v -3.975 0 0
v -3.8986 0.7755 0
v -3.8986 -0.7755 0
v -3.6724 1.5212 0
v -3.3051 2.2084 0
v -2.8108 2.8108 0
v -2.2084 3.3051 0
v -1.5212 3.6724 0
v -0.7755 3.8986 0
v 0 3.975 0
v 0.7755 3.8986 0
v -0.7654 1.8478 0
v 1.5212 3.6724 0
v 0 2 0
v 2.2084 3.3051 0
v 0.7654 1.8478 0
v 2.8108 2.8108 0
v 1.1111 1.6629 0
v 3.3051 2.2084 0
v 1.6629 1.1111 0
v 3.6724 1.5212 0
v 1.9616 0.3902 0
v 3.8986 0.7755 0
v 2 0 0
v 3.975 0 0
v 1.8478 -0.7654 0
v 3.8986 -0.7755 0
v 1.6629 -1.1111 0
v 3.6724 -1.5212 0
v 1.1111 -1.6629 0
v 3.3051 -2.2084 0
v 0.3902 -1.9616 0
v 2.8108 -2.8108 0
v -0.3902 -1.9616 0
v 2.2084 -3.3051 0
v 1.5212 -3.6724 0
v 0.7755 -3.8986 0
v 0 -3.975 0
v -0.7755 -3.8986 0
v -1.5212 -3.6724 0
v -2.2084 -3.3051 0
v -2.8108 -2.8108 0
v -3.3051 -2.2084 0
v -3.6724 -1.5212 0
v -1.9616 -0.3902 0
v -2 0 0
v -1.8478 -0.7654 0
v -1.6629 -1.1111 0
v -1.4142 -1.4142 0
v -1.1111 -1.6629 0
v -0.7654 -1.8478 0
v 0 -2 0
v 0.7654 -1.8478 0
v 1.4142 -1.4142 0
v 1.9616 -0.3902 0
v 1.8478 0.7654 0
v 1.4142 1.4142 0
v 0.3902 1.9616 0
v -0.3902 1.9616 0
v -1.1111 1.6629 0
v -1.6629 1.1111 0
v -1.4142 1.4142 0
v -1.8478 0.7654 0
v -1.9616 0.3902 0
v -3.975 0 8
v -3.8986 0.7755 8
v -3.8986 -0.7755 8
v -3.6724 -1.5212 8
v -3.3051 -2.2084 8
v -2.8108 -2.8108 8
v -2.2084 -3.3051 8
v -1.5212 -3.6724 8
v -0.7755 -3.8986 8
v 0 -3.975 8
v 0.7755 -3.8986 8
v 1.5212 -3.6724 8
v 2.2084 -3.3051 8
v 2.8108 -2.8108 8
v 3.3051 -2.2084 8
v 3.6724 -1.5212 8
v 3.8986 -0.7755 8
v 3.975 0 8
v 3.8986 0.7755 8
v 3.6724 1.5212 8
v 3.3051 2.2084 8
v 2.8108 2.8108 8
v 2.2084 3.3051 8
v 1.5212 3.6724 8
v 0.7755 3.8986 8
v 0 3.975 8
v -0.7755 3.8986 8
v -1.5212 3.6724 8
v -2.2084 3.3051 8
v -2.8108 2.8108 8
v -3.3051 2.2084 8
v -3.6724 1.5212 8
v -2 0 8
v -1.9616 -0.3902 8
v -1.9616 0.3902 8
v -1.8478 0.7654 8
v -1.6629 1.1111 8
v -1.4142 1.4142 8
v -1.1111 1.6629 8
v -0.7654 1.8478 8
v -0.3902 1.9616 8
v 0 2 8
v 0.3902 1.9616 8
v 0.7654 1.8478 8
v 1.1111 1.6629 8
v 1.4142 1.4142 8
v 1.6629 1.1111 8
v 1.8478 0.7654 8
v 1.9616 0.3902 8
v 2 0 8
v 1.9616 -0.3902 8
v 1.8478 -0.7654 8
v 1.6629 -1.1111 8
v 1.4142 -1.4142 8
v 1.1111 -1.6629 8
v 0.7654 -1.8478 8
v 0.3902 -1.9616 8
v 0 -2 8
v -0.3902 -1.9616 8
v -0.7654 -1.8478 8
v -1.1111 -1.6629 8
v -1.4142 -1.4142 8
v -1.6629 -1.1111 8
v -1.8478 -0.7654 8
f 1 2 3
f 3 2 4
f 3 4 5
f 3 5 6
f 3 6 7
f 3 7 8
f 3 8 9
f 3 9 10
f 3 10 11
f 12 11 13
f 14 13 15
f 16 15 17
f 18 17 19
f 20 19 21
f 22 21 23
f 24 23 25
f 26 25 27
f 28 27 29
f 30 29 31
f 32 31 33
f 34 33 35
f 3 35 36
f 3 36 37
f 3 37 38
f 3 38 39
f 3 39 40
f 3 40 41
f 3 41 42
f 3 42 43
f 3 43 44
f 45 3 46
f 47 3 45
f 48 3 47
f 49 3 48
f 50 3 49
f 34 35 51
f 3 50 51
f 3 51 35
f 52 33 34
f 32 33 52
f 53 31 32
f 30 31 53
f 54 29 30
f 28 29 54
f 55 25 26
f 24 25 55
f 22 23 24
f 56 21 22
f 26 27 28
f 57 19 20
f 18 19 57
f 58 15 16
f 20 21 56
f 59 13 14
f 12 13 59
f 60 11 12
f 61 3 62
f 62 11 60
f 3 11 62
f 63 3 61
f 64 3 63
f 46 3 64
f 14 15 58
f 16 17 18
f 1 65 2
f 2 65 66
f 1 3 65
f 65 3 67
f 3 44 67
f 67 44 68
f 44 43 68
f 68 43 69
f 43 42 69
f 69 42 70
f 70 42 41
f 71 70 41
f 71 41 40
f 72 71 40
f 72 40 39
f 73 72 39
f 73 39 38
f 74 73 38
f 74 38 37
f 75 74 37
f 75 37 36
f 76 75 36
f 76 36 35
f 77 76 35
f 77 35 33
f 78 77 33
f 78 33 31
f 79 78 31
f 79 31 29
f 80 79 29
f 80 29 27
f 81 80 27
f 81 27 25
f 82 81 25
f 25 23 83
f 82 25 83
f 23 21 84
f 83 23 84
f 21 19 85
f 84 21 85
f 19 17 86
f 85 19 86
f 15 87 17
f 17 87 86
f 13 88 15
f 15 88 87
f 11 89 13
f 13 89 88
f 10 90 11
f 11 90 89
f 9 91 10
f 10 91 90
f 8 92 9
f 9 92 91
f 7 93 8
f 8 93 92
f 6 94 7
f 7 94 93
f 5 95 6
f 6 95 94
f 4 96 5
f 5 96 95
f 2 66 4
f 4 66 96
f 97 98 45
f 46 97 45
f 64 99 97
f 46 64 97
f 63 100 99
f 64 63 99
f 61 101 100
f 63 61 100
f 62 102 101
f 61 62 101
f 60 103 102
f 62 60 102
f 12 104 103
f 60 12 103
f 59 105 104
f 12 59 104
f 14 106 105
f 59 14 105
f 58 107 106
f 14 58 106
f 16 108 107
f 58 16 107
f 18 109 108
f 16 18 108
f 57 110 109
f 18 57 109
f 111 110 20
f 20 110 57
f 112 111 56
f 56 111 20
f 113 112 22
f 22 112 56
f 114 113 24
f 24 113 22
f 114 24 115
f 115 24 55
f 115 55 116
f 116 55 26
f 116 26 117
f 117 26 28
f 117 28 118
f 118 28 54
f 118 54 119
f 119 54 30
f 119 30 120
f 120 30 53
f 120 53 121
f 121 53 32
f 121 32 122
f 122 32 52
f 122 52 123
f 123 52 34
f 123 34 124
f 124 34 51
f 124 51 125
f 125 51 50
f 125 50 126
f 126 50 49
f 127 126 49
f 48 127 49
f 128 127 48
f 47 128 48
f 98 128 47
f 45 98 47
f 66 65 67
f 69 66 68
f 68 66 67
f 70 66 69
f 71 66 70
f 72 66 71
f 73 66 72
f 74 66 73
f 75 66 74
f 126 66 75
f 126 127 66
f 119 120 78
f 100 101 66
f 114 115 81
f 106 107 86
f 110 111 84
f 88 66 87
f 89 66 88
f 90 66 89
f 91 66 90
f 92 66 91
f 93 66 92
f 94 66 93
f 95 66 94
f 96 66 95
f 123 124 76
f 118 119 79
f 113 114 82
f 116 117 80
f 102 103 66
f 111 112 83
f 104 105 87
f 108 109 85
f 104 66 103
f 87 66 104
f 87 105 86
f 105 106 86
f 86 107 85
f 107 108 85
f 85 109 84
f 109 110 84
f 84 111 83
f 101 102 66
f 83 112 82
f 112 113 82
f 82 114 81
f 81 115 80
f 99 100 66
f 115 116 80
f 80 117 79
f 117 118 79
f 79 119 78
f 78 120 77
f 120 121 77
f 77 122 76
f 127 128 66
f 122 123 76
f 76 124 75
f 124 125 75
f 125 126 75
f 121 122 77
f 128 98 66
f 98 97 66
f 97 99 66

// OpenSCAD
$fn=32;

difference() {
	cylinder(r=7.95/2, h=8);

	cylinder(r=4/2, h=100, center=true);
}
